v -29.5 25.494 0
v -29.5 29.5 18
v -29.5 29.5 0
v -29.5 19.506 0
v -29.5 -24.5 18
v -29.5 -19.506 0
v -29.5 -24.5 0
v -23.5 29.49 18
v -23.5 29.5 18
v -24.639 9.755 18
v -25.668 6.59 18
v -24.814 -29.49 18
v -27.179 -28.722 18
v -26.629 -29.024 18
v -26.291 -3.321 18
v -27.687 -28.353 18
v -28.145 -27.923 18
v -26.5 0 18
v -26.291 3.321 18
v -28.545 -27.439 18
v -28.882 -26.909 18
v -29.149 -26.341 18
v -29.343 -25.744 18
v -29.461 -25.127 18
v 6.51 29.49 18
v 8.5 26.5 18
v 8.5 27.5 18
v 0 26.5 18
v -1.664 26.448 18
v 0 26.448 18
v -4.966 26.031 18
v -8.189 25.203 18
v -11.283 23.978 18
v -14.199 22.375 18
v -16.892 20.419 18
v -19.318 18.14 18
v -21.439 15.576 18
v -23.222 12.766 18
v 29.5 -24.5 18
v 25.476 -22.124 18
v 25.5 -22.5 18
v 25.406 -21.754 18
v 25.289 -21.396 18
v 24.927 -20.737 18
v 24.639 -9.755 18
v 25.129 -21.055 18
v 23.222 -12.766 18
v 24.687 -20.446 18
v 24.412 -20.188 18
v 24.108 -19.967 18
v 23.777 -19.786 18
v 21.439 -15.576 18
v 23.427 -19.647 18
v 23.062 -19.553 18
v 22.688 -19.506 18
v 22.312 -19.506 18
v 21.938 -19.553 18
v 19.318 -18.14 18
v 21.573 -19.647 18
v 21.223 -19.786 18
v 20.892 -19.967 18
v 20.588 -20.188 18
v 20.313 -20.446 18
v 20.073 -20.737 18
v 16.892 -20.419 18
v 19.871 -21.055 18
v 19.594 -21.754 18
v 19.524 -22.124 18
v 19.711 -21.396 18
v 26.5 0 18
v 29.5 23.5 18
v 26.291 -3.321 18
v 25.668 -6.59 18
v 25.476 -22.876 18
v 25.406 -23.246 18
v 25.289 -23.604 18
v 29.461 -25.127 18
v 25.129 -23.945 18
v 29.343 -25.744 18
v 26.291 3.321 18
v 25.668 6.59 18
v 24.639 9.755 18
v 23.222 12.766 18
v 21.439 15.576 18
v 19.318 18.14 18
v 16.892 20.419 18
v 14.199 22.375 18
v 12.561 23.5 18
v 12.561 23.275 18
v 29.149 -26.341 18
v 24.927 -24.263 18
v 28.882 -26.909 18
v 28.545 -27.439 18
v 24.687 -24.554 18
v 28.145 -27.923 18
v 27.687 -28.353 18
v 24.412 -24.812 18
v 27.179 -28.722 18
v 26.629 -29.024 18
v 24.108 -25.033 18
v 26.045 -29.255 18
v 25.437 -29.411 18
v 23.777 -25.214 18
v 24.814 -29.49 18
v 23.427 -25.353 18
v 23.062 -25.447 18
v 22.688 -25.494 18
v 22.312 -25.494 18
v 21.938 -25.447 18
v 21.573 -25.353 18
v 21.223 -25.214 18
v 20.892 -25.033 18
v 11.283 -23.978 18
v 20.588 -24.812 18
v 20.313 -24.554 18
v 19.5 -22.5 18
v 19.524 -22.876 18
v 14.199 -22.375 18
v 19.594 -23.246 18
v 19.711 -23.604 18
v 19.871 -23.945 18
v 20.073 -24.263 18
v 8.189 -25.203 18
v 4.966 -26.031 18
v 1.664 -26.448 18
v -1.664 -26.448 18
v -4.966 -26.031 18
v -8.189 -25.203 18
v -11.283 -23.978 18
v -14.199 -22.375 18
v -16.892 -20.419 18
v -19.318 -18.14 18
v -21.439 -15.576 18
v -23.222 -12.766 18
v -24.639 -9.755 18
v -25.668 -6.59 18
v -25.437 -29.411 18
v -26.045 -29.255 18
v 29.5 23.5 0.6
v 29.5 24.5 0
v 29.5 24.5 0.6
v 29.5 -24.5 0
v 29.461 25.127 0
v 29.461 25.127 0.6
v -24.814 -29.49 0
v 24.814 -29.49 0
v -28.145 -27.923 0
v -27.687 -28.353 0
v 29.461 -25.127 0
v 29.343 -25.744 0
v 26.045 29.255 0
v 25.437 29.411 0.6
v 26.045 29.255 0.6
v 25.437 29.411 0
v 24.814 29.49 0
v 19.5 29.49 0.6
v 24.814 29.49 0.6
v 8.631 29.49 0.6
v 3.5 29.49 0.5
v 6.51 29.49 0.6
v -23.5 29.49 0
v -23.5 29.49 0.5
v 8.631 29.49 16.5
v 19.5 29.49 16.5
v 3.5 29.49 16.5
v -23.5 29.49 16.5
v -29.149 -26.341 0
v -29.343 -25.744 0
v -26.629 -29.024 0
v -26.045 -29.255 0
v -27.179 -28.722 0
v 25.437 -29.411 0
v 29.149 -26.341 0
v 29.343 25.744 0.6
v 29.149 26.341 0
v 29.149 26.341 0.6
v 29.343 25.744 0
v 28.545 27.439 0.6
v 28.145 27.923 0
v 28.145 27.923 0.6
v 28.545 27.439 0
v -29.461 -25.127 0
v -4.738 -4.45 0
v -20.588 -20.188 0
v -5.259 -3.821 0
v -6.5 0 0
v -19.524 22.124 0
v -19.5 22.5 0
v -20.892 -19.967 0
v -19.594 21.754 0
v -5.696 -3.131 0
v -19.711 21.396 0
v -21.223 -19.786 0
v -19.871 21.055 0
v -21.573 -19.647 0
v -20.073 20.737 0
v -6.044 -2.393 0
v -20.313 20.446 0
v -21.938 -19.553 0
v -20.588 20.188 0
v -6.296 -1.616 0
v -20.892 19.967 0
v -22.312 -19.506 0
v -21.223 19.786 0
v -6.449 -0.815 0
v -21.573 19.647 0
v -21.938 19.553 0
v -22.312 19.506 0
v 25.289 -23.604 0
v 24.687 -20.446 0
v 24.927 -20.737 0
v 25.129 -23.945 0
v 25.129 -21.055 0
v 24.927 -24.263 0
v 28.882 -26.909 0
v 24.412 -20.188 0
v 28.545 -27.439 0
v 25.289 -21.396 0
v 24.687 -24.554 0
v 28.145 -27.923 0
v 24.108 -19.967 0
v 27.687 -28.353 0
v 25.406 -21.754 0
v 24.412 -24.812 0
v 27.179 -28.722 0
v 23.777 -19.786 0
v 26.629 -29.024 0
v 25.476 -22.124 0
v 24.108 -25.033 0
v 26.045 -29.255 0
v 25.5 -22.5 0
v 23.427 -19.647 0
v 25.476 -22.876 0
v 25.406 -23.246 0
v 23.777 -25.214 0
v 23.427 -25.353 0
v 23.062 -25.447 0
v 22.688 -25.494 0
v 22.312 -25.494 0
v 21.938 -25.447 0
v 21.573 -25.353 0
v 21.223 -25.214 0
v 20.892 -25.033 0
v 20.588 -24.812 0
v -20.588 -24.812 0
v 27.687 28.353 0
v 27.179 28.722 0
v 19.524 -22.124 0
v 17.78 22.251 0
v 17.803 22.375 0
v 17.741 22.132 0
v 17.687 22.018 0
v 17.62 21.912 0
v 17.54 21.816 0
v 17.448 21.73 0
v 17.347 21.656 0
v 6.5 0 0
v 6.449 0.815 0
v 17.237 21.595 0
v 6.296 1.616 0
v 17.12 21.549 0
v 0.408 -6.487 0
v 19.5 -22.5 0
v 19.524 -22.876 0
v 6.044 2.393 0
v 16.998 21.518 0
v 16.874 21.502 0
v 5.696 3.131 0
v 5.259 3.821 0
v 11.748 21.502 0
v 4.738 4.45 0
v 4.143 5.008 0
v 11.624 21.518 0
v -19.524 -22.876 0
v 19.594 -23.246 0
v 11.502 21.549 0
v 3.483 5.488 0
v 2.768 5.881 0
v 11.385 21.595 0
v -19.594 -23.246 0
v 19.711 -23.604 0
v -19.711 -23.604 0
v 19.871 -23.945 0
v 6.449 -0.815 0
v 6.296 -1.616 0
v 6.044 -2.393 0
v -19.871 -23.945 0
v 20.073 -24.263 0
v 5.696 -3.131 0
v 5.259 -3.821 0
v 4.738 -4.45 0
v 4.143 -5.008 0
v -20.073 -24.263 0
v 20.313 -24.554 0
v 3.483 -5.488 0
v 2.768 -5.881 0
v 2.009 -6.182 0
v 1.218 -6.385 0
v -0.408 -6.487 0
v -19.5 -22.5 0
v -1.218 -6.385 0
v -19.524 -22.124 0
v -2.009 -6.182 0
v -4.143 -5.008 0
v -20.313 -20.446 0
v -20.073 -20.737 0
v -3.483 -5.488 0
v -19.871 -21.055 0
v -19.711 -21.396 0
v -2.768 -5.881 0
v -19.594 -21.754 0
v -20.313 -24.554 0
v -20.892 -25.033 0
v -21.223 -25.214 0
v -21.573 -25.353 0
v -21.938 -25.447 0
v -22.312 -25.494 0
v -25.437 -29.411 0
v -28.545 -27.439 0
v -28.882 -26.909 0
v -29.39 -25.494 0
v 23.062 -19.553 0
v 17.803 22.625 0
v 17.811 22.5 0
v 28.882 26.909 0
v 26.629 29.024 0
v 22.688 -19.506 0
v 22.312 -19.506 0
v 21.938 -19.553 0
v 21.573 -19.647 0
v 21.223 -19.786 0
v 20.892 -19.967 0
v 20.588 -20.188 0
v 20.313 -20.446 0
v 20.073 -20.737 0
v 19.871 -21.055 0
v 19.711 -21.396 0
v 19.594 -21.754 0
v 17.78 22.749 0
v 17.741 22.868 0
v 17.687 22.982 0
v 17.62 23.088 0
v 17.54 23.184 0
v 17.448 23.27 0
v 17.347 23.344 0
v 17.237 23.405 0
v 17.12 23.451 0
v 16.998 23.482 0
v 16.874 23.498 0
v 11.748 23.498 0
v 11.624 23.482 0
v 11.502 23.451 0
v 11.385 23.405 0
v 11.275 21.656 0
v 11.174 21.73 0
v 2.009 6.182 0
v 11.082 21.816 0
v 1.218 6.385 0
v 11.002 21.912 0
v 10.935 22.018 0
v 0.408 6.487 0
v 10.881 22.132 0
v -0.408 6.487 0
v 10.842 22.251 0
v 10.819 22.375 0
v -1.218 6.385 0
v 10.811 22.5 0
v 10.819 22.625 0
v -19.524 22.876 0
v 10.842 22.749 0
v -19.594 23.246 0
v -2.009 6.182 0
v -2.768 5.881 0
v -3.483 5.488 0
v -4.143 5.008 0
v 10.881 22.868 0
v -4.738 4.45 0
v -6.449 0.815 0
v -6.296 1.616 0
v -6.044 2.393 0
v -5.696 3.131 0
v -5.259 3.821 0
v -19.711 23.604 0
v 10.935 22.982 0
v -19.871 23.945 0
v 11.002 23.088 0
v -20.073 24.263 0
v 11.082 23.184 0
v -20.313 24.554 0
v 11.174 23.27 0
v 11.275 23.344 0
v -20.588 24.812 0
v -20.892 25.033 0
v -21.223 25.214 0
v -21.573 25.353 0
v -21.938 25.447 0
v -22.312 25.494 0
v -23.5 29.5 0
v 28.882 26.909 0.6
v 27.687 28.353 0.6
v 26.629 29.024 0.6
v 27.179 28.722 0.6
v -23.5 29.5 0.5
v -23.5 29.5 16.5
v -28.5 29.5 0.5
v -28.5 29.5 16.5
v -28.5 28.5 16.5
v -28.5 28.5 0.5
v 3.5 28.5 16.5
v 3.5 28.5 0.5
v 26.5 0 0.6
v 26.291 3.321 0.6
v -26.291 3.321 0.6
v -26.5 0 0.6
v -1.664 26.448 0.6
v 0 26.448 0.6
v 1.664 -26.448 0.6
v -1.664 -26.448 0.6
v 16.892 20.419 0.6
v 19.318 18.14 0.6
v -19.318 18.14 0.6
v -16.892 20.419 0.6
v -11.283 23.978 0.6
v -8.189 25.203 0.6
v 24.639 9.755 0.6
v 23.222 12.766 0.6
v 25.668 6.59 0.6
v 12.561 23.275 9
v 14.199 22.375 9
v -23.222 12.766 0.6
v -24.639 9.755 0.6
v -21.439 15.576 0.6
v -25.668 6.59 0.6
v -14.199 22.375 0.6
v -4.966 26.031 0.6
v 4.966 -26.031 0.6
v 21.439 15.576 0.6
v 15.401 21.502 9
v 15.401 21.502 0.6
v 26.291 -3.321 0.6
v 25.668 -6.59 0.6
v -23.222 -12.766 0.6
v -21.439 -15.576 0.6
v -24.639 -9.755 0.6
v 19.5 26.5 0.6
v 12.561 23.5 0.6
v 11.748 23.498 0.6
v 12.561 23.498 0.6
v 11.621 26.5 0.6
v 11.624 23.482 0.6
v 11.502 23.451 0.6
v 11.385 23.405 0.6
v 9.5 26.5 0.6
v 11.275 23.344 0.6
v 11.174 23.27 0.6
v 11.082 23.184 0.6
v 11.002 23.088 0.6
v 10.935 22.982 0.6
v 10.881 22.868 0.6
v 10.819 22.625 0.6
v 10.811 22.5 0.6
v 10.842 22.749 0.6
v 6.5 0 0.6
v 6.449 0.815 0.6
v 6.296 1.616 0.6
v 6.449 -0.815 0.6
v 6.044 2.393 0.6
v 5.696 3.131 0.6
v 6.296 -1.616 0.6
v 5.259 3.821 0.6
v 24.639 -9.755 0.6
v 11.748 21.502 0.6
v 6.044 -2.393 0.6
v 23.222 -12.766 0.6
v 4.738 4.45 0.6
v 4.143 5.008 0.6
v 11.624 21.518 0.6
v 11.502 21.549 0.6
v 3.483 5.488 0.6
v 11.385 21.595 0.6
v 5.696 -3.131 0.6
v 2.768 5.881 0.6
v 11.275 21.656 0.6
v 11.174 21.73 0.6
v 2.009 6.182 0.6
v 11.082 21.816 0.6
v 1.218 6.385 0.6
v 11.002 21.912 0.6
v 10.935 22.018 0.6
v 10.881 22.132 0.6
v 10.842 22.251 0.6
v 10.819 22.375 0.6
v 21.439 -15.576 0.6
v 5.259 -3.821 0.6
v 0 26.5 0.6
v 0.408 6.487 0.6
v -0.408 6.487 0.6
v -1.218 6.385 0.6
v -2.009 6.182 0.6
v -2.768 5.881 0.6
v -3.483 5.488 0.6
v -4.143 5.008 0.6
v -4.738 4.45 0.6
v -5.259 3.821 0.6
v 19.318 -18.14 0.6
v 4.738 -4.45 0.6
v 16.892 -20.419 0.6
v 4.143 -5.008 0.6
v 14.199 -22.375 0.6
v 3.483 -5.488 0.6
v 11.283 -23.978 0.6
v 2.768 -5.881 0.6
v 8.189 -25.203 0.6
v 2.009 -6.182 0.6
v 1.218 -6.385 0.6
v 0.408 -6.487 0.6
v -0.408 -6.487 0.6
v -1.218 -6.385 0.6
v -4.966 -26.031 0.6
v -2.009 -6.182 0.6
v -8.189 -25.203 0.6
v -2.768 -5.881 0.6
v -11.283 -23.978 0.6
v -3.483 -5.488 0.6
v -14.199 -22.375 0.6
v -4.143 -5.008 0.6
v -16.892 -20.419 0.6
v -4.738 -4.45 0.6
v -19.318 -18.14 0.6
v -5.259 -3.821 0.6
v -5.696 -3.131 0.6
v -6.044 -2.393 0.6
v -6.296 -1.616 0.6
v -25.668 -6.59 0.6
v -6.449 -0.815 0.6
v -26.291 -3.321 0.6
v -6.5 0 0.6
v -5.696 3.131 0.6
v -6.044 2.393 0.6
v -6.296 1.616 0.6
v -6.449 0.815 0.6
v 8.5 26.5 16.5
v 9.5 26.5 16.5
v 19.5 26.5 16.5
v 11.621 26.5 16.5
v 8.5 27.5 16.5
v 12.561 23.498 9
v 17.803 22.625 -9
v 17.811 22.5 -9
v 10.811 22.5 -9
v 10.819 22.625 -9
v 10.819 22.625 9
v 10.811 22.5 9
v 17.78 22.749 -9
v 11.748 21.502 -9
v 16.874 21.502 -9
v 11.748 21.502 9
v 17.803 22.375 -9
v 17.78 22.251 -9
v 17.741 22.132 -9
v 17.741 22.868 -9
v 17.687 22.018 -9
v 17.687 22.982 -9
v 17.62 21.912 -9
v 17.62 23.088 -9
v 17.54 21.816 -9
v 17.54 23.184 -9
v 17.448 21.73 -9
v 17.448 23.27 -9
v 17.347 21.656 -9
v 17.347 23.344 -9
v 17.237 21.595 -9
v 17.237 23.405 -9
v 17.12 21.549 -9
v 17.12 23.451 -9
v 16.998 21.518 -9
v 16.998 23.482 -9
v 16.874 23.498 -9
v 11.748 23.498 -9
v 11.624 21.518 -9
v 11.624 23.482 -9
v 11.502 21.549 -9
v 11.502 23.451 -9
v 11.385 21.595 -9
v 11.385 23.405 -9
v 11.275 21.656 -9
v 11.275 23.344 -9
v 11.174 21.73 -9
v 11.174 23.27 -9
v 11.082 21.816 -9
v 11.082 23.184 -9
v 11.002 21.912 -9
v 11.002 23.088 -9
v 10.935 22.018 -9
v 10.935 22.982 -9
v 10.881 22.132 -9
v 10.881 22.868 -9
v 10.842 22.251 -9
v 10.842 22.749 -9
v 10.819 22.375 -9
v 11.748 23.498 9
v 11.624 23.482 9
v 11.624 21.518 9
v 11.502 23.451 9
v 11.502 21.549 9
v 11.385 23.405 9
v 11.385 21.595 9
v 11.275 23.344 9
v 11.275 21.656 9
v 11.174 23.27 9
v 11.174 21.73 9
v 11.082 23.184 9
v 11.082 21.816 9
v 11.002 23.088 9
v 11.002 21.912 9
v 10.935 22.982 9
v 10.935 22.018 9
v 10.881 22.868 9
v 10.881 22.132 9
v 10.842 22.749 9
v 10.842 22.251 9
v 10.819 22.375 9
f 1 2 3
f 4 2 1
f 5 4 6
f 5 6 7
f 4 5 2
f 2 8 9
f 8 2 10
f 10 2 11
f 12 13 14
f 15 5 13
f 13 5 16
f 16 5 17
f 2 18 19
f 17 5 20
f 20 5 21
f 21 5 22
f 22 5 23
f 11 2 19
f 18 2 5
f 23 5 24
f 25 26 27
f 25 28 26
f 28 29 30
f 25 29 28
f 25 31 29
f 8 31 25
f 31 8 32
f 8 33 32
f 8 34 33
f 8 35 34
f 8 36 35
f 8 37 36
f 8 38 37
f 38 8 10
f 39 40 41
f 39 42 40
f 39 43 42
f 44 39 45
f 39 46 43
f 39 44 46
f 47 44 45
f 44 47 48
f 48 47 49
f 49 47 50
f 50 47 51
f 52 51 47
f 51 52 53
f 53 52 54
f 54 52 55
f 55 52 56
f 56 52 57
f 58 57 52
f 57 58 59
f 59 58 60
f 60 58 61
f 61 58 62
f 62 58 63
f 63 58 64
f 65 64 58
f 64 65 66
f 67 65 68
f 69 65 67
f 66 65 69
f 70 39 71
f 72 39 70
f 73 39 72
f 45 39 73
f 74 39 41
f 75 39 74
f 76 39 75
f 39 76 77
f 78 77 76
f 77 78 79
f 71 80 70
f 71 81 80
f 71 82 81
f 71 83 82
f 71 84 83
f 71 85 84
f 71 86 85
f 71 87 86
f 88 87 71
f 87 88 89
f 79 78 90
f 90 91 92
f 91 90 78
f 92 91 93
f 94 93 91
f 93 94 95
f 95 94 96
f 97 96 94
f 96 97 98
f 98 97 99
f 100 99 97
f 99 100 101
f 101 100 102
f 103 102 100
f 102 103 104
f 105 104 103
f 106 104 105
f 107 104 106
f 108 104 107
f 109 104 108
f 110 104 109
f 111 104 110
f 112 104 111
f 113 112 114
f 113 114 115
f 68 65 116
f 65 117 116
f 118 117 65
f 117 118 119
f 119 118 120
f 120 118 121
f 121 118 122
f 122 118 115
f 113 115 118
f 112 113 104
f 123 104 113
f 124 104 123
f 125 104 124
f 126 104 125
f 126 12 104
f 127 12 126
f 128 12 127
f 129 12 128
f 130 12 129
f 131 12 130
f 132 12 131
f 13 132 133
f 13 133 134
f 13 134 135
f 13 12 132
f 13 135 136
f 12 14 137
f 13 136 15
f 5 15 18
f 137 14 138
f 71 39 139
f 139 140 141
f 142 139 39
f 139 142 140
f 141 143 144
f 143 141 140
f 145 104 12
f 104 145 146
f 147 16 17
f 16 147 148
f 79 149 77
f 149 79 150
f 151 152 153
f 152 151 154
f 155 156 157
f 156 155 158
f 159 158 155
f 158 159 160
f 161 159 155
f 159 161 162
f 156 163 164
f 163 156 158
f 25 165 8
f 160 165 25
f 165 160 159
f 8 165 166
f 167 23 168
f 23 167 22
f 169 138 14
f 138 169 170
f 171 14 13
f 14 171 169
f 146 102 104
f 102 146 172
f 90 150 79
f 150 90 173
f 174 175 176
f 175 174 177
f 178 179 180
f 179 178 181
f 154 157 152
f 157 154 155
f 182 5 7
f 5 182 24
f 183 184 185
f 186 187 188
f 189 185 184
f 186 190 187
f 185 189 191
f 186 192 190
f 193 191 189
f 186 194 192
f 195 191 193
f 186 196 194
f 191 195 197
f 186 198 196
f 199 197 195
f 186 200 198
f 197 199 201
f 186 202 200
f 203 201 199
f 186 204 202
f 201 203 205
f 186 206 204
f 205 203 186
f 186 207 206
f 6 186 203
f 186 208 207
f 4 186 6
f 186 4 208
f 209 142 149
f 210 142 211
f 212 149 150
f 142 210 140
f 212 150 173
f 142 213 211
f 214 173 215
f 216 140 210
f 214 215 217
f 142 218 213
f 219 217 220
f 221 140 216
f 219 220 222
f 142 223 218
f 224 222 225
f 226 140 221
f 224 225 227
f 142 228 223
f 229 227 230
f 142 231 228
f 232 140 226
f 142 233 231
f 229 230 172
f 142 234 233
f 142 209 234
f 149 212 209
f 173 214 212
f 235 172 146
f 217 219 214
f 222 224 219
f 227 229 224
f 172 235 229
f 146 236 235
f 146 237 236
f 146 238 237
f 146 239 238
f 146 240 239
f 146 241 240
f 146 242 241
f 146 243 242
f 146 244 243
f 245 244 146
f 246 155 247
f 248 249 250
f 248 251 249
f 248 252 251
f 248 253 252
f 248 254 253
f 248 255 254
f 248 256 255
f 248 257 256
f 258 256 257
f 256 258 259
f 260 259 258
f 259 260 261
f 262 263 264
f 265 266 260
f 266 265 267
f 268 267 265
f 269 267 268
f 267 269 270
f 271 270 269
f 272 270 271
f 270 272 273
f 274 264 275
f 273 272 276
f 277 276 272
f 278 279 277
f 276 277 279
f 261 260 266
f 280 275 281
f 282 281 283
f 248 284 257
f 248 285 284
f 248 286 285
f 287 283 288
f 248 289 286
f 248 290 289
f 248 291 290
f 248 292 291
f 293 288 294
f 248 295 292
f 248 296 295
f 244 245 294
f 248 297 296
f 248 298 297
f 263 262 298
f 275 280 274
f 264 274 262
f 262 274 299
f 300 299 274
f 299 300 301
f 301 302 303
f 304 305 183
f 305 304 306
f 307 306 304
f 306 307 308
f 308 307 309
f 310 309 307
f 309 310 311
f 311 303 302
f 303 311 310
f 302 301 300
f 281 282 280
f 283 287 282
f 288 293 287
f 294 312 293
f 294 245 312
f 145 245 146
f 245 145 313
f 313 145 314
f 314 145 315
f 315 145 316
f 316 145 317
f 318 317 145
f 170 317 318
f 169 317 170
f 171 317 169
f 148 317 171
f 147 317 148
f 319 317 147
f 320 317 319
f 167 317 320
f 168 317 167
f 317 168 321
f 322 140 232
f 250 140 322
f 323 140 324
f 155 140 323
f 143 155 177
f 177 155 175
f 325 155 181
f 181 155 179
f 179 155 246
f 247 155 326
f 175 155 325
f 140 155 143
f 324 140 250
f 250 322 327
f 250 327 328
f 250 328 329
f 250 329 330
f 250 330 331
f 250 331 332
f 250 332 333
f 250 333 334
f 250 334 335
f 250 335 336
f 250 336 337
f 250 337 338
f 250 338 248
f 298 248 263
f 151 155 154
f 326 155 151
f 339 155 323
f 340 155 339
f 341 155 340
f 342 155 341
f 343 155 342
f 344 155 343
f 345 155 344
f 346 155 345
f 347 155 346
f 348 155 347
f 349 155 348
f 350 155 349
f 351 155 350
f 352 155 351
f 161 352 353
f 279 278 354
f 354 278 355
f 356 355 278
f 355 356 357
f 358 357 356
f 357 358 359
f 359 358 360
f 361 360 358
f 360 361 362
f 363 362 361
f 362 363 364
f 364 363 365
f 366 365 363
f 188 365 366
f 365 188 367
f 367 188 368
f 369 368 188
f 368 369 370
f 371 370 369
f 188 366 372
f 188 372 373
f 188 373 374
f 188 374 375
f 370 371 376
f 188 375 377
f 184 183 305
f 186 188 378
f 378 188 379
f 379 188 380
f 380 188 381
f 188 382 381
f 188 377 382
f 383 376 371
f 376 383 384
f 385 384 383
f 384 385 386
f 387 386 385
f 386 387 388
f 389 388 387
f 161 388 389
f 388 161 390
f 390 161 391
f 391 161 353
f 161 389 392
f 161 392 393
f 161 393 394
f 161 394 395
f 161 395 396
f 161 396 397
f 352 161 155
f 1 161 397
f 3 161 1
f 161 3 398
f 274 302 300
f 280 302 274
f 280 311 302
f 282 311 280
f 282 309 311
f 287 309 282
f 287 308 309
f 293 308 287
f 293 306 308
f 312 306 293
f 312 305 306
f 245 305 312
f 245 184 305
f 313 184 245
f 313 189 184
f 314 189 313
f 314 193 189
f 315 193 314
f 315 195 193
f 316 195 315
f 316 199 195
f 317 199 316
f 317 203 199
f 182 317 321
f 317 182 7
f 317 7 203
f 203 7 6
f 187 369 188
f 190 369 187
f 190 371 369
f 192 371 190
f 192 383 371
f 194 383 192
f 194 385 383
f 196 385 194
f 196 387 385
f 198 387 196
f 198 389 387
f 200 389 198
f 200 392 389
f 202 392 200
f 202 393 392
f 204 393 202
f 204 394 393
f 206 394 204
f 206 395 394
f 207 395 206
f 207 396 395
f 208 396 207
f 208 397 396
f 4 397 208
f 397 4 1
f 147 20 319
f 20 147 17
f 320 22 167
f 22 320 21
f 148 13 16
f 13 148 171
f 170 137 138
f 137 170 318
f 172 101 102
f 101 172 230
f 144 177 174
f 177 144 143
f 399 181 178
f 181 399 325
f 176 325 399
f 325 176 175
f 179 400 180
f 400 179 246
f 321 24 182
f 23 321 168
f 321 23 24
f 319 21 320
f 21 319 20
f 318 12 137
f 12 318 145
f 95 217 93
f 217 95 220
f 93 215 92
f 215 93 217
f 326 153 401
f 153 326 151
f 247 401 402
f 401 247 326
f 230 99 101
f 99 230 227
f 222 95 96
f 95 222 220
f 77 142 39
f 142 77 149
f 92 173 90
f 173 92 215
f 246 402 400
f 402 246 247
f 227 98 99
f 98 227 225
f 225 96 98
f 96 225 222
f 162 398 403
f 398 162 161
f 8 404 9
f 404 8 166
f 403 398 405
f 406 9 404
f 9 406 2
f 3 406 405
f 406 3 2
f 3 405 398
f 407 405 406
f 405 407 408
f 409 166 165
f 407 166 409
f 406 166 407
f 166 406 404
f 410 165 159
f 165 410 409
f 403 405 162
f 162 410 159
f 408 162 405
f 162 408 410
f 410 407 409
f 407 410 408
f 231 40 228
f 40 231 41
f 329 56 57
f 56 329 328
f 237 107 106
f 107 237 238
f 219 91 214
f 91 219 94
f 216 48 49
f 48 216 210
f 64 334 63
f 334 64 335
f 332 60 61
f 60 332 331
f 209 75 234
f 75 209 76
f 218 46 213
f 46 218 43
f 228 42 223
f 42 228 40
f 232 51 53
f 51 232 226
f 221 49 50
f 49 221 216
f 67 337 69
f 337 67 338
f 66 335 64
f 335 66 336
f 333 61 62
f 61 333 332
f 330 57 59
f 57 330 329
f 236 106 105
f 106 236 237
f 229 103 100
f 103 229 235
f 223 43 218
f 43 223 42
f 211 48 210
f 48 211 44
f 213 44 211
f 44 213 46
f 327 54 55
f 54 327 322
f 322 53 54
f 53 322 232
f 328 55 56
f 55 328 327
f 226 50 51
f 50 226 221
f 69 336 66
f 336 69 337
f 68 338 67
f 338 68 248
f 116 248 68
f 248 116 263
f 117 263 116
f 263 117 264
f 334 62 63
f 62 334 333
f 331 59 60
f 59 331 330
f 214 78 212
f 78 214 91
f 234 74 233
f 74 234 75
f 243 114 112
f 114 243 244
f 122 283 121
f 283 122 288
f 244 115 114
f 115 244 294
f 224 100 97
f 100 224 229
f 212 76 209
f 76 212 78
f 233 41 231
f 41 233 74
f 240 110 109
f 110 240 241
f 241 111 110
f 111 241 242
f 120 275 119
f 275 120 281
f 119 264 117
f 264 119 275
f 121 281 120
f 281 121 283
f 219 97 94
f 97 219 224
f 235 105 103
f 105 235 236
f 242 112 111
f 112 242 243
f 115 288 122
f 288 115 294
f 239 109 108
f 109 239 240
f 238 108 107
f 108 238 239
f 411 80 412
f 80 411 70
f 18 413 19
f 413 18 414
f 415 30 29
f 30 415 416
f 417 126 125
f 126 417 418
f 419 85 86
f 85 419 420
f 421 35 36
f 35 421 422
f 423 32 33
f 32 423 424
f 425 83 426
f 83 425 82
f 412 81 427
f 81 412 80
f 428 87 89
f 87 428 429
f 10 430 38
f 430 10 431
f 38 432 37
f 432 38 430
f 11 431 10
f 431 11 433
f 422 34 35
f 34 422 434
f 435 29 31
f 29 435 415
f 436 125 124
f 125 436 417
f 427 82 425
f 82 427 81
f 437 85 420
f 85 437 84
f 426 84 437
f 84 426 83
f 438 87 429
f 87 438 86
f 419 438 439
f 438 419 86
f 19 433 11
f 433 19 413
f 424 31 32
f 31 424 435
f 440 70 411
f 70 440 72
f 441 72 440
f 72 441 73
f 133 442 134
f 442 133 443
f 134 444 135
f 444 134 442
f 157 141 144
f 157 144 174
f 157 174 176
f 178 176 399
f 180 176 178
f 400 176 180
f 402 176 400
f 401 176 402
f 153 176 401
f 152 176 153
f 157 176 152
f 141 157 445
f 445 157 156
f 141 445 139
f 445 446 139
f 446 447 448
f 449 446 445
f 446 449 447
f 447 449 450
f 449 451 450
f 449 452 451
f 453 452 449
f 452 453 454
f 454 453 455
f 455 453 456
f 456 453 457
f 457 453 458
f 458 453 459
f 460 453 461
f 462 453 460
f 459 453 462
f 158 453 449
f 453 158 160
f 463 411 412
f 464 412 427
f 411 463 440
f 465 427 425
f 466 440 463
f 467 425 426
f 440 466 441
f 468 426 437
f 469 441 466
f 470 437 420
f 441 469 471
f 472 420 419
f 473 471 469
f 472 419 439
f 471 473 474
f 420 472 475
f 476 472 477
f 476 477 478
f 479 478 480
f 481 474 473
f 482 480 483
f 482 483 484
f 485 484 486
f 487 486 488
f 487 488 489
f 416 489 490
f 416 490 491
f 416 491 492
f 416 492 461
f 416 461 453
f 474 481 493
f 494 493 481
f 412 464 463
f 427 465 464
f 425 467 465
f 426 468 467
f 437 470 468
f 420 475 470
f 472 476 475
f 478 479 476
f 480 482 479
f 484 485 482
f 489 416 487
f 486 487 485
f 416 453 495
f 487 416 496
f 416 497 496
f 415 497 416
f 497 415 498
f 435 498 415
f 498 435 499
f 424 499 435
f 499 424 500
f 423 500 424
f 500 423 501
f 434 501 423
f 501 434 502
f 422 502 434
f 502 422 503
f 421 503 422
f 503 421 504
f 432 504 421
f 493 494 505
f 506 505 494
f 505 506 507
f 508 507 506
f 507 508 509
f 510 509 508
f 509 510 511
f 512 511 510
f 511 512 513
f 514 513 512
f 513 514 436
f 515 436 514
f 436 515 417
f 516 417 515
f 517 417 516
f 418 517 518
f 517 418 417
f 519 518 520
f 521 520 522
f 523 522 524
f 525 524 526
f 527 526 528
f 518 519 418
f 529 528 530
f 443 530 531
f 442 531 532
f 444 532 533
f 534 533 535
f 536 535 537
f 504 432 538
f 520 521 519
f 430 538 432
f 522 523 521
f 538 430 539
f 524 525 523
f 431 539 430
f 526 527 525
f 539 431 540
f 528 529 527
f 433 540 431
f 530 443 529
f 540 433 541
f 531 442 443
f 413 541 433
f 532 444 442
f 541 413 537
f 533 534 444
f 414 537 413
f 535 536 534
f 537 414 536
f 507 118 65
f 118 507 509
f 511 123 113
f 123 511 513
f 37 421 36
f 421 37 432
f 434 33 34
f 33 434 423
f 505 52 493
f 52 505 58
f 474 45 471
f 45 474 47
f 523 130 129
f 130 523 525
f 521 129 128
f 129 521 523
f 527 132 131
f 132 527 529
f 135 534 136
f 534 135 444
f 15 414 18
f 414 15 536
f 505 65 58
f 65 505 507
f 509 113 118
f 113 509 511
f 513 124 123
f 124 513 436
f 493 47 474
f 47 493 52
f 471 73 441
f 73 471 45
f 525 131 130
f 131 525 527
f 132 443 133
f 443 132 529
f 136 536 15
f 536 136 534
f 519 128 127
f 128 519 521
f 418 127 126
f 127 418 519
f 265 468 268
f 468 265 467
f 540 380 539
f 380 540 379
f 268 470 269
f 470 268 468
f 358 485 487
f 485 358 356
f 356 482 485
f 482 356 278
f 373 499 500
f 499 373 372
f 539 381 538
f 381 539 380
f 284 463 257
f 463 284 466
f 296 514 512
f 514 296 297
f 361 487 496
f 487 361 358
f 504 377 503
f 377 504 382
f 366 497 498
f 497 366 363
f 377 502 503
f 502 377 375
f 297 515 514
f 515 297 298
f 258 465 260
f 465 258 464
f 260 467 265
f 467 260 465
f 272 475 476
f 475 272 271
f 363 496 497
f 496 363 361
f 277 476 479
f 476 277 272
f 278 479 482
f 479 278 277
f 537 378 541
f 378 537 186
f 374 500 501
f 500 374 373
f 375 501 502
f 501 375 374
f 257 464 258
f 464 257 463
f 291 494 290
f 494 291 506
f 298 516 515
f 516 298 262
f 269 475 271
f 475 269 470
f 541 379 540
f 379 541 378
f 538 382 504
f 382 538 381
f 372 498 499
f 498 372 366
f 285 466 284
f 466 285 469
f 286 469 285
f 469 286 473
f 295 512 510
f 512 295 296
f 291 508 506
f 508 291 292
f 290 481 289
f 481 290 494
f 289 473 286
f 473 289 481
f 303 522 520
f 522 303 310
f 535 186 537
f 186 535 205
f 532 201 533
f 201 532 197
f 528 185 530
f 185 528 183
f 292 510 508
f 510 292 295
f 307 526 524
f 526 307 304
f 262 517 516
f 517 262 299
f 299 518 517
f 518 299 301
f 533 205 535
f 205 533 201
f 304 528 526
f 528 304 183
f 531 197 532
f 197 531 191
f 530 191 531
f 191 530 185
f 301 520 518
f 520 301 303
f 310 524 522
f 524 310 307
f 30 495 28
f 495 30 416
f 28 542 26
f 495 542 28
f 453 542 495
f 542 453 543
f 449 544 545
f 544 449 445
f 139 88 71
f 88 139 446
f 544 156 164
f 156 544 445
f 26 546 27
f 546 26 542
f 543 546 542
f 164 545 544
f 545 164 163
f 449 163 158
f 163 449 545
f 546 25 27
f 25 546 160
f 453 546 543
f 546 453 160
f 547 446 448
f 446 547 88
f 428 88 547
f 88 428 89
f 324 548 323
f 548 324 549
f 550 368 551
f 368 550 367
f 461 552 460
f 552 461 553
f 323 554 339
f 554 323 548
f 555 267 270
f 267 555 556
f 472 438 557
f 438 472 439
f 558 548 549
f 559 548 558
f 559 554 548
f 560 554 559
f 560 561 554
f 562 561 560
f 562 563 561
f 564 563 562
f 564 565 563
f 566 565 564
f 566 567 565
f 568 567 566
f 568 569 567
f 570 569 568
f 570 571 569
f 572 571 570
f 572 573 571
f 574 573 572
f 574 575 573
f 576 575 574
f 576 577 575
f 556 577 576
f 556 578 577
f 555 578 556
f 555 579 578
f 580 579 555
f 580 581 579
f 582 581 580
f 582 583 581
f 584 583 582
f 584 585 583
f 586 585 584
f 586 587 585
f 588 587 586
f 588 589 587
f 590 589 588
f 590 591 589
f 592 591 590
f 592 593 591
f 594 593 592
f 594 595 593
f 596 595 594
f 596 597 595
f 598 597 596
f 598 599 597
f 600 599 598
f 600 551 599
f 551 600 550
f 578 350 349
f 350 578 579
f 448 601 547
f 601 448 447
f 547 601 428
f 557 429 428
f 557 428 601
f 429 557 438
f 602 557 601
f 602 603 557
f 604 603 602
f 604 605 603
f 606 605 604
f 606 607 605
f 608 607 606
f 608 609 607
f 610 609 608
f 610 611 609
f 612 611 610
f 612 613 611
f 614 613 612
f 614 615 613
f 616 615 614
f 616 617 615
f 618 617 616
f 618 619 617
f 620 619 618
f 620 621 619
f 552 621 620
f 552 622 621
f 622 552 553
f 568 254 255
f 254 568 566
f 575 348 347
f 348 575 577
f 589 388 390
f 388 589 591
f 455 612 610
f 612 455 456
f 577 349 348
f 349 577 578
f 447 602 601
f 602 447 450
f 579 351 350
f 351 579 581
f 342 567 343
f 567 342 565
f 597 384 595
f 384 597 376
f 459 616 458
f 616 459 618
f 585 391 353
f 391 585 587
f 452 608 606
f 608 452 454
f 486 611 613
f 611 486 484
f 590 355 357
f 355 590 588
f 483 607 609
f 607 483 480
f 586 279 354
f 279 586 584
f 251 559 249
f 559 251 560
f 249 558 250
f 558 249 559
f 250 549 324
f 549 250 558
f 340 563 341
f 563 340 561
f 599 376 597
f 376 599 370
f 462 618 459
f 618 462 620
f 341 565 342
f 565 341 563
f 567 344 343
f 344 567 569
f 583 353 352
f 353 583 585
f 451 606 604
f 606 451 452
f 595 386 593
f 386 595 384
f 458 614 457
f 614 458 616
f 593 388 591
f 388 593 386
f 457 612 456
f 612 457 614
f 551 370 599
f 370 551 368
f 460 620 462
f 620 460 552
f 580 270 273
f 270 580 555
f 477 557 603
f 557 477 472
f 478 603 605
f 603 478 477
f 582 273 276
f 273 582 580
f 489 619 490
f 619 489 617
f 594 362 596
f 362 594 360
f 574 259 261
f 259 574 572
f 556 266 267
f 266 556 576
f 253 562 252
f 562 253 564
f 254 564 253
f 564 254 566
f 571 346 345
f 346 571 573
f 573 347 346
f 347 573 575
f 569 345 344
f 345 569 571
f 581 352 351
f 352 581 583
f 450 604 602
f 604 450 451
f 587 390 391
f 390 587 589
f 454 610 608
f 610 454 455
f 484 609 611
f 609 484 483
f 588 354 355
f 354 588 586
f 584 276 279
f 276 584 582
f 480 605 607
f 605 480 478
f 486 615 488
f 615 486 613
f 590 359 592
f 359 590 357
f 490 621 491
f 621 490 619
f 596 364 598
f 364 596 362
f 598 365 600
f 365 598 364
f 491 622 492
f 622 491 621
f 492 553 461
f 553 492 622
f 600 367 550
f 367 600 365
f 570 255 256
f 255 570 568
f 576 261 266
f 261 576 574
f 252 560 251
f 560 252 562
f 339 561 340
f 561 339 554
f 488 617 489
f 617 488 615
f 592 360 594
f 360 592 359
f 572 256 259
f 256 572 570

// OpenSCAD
$fn = 50;


union() {
	difference() {
		union() {
			hull() {
				translate(v = [-24.5000000000, 24.5000000000, 0]) {
					cylinder(h = 18, r = 5);
				}
				translate(v = [24.5000000000, 24.5000000000, 0]) {
					cylinder(h = 18, r = 5);
				}
				translate(v = [-24.5000000000, -24.5000000000, 0]) {
					cylinder(h = 18, r = 5);
				}
				translate(v = [24.5000000000, -24.5000000000, 0]) {
					cylinder(h = 18, r = 5);
				}
			}
			translate(v = [-29.5000000000, 23.5000000000, 0]) {
				cube(size = [6, 6, 18]);
			}
		}
		union() {
			translate(v = [-30.0000000000, -22.5000000000, -250.0000000000]) {
				rotate(a = [0, 0, 0]) {
					difference() {
						union() {
							hull() {
								translate(v = [7.5000000000, 0, 0]) {
									cylinder(h = 250, r = 3.0000000000, r1 = 3.0000000000, r2 = 3.0000000000);
								}
								translate(v = [-7.5000000000, 0, 0]) {
									cylinder(h = 250, r = 3.0000000000, r1 = 3.0000000000, r2 = 3.0000000000);
								}
							}
						}
						union();
					}
				}
			}
			translate(v = [-30.0000000000, 22.5000000000, -250.0000000000]) {
				rotate(a = [0, 0, 0]) {
					difference() {
						union() {
							hull() {
								translate(v = [7.5000000000, 0, 0]) {
									cylinder(h = 250, r = 3.0000000000, r1 = 3.0000000000, r2 = 3.0000000000);
								}
								translate(v = [-7.5000000000, 0, 0]) {
									cylinder(h = 250, r = 3.0000000000, r1 = 3.0000000000, r2 = 3.0000000000);
								}
							}
						}
						union();
					}
				}
			}
			translate(v = [-28.5000000000, 28.5000000000, 0.5000000000]) {
				cube(size = [32, 1, 16]);
			}
			translate(v = [22.5000000000, -22.5000000000, 0]) {
				cylinder(h = 100, r = 3.0000000000);
			}
			translate(v = [0, 0, 0.6000000000]) {
				cylinder(h = 20.4000000000, r = 26.5000000000);
			}
			translate(v = [0, 0, -9.0000000000]) {
				cylinder(h = 18, r = 6.5000000000);
			}
			translate(v = [0.0000000000, 23.5000000000, 0.6000000000]) {
				cube(size = [29.5000000000, 3, 20.4000000000]);
			}
			translate(v = [19.5000000000, 23.5000000000, 0.6000000000]) {
				cube(size = [10, 6, 20.4000000000]);
			}
			translate(v = [8.5000000000, 23.5000000000, 16.5000000000]) {
				cube(size = [21, 6, 1.5000000000]);
			}
			translate(v = [5.7500000000, 30.2500000000, 0.6000000000]) {
				rotate(a = [0, 0, -45]) {
					cube(size = [7.5000000000, 1.5000000000, 20.4000000000]);
				}
			}
			translate(v = [5.0610000000, 21.5000000000, 0.6000000000]) {
				cube(size = [7.5000000000, 2, 17.4000000000]);
			}
		}
	}
	union() {
		translate(v = [14.3110000000, 22.5000000000, -9.0000000000]) {
			rotate(a = [0, 0, 0]) {
				difference() {
					union() {
						#hull() {
							#translate(v = [2.5000000000, 0, 0]) {
								cylinder(h = 18, r = 1.0000000000, r1 = 1.0000000000, r2 = 1.0000000000);
							}
							#translate(v = [-2.5000000000, 0, 0]) {
								cylinder(h = 18, r = 1.0000000000, r1 = 1.0000000000, r2 = 1.0000000000);
							}
						}
					}
					union();
				}
			}
		}
	}
}
